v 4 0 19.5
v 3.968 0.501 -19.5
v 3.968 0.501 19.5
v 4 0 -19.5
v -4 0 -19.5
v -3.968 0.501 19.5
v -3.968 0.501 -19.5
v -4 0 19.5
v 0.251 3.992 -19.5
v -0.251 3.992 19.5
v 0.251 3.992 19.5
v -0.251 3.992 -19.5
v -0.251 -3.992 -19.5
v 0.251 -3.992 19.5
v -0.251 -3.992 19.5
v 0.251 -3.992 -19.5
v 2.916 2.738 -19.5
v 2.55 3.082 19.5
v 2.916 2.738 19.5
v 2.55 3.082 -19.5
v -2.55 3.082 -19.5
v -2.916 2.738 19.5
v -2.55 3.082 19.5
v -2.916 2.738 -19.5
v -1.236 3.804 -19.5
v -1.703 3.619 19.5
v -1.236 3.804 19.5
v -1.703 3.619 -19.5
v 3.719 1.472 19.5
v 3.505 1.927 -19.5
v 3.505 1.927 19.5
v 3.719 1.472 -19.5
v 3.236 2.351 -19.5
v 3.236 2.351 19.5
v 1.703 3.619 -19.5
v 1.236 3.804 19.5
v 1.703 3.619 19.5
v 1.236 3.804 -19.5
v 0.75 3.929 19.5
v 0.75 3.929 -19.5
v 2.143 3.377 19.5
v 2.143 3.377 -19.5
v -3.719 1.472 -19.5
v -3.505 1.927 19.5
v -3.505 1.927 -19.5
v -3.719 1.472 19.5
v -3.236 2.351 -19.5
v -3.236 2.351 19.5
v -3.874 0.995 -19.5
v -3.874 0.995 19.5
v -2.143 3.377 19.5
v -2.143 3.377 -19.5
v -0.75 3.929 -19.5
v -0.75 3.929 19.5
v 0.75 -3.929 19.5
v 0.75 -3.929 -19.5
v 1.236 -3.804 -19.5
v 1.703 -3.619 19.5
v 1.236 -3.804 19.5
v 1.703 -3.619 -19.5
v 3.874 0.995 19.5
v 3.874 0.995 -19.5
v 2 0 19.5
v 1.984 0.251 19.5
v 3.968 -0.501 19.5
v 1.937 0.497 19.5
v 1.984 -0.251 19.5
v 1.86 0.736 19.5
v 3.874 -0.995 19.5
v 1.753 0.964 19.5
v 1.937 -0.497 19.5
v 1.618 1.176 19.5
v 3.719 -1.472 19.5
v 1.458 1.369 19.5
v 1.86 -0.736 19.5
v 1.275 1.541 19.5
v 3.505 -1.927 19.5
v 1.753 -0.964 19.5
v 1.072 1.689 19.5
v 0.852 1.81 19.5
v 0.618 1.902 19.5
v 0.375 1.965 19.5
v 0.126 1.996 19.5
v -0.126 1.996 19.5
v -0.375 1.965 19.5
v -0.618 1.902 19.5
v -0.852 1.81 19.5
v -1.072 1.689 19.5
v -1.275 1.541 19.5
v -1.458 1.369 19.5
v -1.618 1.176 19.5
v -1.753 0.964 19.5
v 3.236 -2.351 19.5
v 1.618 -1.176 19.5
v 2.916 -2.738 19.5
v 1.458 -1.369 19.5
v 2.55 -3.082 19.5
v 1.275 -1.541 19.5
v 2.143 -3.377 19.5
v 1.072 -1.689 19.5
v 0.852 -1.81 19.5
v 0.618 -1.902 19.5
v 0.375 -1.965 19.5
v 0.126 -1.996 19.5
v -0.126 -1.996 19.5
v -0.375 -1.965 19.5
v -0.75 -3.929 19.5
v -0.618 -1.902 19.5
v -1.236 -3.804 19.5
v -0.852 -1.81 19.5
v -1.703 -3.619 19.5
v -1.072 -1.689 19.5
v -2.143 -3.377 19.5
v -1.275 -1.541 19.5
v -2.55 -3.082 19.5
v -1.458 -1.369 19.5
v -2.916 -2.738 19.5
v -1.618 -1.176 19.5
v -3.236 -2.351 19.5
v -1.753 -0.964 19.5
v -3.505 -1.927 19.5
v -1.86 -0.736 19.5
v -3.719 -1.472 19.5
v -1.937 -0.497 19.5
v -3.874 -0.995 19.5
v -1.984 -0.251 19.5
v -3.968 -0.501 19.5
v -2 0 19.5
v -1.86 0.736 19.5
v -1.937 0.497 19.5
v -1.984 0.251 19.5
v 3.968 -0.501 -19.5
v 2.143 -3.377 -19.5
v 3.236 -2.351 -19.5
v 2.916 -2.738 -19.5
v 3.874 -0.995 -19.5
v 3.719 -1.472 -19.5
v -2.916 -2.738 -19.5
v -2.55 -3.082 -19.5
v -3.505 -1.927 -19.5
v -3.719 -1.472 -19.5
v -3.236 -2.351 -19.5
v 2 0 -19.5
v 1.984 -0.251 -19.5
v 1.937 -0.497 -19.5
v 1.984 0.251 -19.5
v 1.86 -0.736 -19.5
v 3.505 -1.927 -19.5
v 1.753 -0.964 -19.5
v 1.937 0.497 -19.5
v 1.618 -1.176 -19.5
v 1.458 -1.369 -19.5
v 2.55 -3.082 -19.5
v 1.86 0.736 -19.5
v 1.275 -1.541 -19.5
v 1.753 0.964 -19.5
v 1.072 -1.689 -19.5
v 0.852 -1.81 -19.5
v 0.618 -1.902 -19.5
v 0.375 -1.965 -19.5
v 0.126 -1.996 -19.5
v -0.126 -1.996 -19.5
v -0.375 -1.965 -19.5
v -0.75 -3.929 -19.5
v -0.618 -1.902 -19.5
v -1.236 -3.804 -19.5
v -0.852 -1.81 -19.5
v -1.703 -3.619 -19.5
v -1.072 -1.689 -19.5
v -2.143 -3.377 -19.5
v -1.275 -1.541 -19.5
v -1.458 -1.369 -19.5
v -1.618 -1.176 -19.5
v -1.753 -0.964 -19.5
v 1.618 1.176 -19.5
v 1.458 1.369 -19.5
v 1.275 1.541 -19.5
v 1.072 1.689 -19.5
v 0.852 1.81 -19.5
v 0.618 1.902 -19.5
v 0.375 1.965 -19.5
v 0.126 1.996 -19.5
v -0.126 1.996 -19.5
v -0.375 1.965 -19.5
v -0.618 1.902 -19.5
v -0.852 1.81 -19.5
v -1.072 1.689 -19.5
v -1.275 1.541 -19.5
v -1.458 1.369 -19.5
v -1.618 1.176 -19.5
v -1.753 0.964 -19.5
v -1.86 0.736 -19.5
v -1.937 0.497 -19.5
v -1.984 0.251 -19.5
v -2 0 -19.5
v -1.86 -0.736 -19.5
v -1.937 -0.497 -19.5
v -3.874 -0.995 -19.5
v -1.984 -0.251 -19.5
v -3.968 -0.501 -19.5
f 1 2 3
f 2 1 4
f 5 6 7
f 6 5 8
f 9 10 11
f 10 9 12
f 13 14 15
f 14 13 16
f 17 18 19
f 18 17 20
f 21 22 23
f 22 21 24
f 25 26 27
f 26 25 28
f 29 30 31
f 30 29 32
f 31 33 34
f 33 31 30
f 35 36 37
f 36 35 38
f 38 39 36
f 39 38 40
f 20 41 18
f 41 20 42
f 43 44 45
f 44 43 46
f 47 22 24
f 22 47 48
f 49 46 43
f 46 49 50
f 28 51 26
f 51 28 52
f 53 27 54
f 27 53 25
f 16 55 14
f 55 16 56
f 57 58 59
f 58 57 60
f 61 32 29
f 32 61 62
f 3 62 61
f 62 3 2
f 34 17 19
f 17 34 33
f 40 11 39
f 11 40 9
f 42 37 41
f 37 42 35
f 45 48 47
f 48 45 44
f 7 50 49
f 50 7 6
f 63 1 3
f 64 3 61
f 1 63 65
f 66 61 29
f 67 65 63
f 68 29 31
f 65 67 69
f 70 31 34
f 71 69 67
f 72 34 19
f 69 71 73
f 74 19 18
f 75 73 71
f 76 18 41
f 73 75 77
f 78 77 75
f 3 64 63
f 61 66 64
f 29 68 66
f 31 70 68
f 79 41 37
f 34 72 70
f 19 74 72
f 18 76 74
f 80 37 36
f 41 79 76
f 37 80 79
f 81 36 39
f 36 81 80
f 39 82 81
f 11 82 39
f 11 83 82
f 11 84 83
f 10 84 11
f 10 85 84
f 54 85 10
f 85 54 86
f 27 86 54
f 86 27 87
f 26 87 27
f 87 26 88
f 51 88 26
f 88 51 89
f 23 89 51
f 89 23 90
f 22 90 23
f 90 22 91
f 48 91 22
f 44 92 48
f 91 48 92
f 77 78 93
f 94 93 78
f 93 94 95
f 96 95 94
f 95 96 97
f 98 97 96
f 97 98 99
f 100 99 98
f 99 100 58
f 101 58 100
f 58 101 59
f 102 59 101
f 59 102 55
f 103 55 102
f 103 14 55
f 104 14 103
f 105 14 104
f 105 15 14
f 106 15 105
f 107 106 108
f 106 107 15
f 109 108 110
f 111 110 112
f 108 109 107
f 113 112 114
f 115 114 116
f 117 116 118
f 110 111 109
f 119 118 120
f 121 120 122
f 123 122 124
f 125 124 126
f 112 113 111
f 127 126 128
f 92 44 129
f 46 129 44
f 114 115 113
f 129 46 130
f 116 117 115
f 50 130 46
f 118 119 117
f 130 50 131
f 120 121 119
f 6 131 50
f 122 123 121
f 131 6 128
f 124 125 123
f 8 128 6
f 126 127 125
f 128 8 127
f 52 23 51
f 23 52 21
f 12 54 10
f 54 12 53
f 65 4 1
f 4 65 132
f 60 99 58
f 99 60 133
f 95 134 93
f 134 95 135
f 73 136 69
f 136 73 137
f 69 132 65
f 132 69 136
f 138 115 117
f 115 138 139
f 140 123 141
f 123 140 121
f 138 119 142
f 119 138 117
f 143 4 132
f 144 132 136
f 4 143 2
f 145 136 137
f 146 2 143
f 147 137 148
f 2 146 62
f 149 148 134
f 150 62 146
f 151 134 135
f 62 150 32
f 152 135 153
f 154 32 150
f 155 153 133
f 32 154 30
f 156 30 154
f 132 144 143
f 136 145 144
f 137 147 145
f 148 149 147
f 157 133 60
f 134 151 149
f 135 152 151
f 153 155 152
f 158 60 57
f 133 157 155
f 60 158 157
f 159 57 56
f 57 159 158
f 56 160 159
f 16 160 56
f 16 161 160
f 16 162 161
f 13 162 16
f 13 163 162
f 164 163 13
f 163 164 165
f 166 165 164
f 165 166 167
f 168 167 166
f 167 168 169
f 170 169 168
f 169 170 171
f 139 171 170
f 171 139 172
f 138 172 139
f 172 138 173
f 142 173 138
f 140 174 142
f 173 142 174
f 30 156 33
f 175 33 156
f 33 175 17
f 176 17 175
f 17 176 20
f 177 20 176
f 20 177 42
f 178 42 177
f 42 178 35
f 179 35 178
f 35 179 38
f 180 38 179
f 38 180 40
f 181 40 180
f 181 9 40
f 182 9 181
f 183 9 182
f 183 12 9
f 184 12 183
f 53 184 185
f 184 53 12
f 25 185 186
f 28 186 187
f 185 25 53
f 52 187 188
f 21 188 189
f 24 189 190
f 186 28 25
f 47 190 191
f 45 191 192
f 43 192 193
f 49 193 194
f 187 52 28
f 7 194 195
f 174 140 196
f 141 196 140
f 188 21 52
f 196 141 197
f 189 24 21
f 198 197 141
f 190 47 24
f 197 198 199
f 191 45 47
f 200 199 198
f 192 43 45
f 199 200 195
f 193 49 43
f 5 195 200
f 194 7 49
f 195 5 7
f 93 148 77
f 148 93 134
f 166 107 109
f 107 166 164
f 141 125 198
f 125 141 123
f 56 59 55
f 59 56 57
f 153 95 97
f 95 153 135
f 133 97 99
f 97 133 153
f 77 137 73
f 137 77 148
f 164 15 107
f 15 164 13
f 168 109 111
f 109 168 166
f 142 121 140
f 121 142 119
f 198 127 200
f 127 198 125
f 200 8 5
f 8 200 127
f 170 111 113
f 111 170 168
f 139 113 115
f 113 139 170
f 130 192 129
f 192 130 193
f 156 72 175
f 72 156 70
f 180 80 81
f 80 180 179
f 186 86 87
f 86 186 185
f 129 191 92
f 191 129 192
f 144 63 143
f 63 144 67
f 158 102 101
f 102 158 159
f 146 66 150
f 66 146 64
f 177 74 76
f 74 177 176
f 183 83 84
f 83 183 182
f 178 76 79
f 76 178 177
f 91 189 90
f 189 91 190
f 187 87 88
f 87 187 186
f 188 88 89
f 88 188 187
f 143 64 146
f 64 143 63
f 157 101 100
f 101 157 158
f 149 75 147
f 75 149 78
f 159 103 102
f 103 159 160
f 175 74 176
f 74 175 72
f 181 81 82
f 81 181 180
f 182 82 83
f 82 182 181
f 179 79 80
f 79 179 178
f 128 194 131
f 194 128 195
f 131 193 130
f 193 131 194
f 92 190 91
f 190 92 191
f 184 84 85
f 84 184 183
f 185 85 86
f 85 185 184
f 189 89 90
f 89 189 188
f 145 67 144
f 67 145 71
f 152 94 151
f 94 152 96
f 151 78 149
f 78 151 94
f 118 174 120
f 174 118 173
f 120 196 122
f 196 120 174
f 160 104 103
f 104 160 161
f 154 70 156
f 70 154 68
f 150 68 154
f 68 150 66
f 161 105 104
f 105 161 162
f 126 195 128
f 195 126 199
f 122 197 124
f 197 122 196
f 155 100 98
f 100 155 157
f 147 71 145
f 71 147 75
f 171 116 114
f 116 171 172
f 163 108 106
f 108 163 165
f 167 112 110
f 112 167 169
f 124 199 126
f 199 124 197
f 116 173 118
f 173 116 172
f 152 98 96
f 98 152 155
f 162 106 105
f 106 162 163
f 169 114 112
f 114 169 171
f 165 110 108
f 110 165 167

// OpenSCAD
$fn = 50;


difference() {
	union() {
		translate(v = [0, 0, -19.5000000000]) {
			cylinder(h = 39, r = 4.0000000000);
		}
	}
	union() {
		translate(v = [0, 0, -100.0000000000]) {
			cylinder(h = 200, r = 2);
		}
	}
}
